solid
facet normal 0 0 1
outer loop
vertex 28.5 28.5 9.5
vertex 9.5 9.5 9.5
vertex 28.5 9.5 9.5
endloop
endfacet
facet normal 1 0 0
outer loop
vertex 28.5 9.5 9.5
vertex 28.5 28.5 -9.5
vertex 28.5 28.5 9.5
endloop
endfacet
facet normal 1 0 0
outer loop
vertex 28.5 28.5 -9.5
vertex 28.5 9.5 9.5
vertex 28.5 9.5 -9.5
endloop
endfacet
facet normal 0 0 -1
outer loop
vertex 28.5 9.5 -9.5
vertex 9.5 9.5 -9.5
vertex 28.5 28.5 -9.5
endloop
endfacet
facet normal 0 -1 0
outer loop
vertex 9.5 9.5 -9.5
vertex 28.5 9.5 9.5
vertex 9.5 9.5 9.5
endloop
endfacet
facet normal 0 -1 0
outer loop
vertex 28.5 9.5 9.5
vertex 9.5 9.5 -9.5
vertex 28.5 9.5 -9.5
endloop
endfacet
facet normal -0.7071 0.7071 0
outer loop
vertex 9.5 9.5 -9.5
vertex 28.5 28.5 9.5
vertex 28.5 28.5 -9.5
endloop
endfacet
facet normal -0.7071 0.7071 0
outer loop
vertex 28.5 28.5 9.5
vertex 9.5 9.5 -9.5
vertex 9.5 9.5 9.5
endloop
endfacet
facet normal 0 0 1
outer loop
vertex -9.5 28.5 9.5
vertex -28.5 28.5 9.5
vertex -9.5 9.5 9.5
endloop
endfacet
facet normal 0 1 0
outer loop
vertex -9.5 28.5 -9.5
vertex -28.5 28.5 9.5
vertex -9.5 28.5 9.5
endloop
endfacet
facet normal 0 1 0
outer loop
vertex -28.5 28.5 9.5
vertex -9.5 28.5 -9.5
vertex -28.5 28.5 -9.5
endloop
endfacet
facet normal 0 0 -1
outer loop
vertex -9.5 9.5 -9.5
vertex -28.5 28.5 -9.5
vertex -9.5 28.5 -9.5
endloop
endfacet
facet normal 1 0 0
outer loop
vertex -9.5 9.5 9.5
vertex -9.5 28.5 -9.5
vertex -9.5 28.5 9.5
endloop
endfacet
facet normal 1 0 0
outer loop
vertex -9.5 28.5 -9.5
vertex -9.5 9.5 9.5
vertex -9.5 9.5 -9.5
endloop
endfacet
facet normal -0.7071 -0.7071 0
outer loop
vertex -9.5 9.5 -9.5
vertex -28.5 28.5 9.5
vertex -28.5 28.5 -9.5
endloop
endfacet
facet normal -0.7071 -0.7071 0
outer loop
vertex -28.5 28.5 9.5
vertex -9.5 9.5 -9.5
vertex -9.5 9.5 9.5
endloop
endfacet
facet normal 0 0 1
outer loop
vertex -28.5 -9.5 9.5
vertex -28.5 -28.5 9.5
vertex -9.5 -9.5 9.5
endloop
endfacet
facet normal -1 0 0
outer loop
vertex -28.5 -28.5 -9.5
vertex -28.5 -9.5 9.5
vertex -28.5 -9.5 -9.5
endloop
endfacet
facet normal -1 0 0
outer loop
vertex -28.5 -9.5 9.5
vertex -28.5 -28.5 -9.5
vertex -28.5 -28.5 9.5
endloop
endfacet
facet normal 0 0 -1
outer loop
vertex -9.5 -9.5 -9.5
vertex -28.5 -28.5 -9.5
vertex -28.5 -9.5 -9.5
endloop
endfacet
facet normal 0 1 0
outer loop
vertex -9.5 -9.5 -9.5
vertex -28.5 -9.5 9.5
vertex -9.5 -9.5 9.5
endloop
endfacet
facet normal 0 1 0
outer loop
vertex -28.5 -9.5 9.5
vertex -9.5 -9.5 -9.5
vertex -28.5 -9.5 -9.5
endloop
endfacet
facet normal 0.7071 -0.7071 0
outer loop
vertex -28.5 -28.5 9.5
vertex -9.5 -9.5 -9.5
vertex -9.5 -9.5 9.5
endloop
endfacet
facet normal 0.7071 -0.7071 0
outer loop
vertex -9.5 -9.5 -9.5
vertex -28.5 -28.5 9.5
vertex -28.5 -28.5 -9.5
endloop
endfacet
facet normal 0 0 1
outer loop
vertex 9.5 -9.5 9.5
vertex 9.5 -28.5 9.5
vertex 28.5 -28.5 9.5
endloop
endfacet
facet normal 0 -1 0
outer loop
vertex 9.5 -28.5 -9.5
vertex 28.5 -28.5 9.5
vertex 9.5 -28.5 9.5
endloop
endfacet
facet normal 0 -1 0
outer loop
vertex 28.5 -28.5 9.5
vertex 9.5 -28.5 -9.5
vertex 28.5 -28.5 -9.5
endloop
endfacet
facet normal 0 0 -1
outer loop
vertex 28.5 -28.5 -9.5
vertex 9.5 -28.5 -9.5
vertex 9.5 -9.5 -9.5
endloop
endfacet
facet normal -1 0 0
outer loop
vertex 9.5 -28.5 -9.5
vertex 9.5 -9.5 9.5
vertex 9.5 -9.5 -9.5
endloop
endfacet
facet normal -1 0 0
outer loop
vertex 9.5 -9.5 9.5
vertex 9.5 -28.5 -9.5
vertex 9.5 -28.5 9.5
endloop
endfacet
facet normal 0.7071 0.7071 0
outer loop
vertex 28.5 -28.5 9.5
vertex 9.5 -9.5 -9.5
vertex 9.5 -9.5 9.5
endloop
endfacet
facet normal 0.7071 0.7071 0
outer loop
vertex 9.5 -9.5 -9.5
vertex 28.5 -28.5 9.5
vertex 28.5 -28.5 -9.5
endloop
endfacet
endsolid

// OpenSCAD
// file: def.scad
block_size_3 = 19;
block_size_4 = 16;
block_size_5 = 14;
block_size_6 = 12.5;
block_size_7 = 11;
block_size_8 = 10;

inf = 1000;

round_radius = 1;
sticker_margin = 2.5;
sticker_round_radius = 0.75;

module _block(size) {
    minkowski() {
        cube([size - round_radius * 2, size - round_radius * 2, size - round_radius * 2], center = true);
        sphere(r = round_radius, $fn = 24);
    }
}

module _selector_0(size) {
    cube([size - 0.2, size - 0.2, size - 0.2], center = true);
}

module _sticker(size) {
    minkowski() {
        cube([size - sticker_margin * 2, size - sticker_margin * 2, 0.1], center = true);
        cylinder(r = sticker_round_radius, h = 0.1, $fn = 24);
    }
}

module _selector_corner_cw(size) {
    difference() {
        cube([size, size, size], center = true);
        rotate([0, -45, 0])
            translate([-inf, -inf, 0])
                cube([inf * 2, inf * 2, inf]);
        rotate([90, 0, 45])
            translate([-inf, -inf, 0])
                cube([inf * 2, inf * 2, inf]);
    }
}

module _selector_corner_ccw(size) {
    difference() {
        cube([size, size, size], center = true);
        rotate([45, 0, 0])
            translate([-inf, -inf, 0])
                cube([inf * 2, inf * 2, inf]);
        rotate([0, -90, -45])
            translate([-inf, -inf, 0])
                cube([inf * 2, inf * 2, inf]);
    }
}

module _selector_edge_cw(size) {
    difference() {
        cube([size, size, size], center = true);
        rotate([90, 0, 45])
            translate([-inf, -inf, 0])
                cube([inf * 2, inf * 2, inf]);
    }
}

module _selector_edge_ccw(size) {
    difference() {
        cube([size, size, size], center = true);
        rotate([0, -90, -45])
            translate([-inf, -inf, 0])
                cube([inf * 2, inf * 2, inf]);
    }
}
// main file
include <def.scad>

for (deg = [0 : 90 : 270])
    rotate([0, 0, deg])
        translate([block_size_3, block_size_3, 0])
            _selector_edge_ccw(block_size_3);
